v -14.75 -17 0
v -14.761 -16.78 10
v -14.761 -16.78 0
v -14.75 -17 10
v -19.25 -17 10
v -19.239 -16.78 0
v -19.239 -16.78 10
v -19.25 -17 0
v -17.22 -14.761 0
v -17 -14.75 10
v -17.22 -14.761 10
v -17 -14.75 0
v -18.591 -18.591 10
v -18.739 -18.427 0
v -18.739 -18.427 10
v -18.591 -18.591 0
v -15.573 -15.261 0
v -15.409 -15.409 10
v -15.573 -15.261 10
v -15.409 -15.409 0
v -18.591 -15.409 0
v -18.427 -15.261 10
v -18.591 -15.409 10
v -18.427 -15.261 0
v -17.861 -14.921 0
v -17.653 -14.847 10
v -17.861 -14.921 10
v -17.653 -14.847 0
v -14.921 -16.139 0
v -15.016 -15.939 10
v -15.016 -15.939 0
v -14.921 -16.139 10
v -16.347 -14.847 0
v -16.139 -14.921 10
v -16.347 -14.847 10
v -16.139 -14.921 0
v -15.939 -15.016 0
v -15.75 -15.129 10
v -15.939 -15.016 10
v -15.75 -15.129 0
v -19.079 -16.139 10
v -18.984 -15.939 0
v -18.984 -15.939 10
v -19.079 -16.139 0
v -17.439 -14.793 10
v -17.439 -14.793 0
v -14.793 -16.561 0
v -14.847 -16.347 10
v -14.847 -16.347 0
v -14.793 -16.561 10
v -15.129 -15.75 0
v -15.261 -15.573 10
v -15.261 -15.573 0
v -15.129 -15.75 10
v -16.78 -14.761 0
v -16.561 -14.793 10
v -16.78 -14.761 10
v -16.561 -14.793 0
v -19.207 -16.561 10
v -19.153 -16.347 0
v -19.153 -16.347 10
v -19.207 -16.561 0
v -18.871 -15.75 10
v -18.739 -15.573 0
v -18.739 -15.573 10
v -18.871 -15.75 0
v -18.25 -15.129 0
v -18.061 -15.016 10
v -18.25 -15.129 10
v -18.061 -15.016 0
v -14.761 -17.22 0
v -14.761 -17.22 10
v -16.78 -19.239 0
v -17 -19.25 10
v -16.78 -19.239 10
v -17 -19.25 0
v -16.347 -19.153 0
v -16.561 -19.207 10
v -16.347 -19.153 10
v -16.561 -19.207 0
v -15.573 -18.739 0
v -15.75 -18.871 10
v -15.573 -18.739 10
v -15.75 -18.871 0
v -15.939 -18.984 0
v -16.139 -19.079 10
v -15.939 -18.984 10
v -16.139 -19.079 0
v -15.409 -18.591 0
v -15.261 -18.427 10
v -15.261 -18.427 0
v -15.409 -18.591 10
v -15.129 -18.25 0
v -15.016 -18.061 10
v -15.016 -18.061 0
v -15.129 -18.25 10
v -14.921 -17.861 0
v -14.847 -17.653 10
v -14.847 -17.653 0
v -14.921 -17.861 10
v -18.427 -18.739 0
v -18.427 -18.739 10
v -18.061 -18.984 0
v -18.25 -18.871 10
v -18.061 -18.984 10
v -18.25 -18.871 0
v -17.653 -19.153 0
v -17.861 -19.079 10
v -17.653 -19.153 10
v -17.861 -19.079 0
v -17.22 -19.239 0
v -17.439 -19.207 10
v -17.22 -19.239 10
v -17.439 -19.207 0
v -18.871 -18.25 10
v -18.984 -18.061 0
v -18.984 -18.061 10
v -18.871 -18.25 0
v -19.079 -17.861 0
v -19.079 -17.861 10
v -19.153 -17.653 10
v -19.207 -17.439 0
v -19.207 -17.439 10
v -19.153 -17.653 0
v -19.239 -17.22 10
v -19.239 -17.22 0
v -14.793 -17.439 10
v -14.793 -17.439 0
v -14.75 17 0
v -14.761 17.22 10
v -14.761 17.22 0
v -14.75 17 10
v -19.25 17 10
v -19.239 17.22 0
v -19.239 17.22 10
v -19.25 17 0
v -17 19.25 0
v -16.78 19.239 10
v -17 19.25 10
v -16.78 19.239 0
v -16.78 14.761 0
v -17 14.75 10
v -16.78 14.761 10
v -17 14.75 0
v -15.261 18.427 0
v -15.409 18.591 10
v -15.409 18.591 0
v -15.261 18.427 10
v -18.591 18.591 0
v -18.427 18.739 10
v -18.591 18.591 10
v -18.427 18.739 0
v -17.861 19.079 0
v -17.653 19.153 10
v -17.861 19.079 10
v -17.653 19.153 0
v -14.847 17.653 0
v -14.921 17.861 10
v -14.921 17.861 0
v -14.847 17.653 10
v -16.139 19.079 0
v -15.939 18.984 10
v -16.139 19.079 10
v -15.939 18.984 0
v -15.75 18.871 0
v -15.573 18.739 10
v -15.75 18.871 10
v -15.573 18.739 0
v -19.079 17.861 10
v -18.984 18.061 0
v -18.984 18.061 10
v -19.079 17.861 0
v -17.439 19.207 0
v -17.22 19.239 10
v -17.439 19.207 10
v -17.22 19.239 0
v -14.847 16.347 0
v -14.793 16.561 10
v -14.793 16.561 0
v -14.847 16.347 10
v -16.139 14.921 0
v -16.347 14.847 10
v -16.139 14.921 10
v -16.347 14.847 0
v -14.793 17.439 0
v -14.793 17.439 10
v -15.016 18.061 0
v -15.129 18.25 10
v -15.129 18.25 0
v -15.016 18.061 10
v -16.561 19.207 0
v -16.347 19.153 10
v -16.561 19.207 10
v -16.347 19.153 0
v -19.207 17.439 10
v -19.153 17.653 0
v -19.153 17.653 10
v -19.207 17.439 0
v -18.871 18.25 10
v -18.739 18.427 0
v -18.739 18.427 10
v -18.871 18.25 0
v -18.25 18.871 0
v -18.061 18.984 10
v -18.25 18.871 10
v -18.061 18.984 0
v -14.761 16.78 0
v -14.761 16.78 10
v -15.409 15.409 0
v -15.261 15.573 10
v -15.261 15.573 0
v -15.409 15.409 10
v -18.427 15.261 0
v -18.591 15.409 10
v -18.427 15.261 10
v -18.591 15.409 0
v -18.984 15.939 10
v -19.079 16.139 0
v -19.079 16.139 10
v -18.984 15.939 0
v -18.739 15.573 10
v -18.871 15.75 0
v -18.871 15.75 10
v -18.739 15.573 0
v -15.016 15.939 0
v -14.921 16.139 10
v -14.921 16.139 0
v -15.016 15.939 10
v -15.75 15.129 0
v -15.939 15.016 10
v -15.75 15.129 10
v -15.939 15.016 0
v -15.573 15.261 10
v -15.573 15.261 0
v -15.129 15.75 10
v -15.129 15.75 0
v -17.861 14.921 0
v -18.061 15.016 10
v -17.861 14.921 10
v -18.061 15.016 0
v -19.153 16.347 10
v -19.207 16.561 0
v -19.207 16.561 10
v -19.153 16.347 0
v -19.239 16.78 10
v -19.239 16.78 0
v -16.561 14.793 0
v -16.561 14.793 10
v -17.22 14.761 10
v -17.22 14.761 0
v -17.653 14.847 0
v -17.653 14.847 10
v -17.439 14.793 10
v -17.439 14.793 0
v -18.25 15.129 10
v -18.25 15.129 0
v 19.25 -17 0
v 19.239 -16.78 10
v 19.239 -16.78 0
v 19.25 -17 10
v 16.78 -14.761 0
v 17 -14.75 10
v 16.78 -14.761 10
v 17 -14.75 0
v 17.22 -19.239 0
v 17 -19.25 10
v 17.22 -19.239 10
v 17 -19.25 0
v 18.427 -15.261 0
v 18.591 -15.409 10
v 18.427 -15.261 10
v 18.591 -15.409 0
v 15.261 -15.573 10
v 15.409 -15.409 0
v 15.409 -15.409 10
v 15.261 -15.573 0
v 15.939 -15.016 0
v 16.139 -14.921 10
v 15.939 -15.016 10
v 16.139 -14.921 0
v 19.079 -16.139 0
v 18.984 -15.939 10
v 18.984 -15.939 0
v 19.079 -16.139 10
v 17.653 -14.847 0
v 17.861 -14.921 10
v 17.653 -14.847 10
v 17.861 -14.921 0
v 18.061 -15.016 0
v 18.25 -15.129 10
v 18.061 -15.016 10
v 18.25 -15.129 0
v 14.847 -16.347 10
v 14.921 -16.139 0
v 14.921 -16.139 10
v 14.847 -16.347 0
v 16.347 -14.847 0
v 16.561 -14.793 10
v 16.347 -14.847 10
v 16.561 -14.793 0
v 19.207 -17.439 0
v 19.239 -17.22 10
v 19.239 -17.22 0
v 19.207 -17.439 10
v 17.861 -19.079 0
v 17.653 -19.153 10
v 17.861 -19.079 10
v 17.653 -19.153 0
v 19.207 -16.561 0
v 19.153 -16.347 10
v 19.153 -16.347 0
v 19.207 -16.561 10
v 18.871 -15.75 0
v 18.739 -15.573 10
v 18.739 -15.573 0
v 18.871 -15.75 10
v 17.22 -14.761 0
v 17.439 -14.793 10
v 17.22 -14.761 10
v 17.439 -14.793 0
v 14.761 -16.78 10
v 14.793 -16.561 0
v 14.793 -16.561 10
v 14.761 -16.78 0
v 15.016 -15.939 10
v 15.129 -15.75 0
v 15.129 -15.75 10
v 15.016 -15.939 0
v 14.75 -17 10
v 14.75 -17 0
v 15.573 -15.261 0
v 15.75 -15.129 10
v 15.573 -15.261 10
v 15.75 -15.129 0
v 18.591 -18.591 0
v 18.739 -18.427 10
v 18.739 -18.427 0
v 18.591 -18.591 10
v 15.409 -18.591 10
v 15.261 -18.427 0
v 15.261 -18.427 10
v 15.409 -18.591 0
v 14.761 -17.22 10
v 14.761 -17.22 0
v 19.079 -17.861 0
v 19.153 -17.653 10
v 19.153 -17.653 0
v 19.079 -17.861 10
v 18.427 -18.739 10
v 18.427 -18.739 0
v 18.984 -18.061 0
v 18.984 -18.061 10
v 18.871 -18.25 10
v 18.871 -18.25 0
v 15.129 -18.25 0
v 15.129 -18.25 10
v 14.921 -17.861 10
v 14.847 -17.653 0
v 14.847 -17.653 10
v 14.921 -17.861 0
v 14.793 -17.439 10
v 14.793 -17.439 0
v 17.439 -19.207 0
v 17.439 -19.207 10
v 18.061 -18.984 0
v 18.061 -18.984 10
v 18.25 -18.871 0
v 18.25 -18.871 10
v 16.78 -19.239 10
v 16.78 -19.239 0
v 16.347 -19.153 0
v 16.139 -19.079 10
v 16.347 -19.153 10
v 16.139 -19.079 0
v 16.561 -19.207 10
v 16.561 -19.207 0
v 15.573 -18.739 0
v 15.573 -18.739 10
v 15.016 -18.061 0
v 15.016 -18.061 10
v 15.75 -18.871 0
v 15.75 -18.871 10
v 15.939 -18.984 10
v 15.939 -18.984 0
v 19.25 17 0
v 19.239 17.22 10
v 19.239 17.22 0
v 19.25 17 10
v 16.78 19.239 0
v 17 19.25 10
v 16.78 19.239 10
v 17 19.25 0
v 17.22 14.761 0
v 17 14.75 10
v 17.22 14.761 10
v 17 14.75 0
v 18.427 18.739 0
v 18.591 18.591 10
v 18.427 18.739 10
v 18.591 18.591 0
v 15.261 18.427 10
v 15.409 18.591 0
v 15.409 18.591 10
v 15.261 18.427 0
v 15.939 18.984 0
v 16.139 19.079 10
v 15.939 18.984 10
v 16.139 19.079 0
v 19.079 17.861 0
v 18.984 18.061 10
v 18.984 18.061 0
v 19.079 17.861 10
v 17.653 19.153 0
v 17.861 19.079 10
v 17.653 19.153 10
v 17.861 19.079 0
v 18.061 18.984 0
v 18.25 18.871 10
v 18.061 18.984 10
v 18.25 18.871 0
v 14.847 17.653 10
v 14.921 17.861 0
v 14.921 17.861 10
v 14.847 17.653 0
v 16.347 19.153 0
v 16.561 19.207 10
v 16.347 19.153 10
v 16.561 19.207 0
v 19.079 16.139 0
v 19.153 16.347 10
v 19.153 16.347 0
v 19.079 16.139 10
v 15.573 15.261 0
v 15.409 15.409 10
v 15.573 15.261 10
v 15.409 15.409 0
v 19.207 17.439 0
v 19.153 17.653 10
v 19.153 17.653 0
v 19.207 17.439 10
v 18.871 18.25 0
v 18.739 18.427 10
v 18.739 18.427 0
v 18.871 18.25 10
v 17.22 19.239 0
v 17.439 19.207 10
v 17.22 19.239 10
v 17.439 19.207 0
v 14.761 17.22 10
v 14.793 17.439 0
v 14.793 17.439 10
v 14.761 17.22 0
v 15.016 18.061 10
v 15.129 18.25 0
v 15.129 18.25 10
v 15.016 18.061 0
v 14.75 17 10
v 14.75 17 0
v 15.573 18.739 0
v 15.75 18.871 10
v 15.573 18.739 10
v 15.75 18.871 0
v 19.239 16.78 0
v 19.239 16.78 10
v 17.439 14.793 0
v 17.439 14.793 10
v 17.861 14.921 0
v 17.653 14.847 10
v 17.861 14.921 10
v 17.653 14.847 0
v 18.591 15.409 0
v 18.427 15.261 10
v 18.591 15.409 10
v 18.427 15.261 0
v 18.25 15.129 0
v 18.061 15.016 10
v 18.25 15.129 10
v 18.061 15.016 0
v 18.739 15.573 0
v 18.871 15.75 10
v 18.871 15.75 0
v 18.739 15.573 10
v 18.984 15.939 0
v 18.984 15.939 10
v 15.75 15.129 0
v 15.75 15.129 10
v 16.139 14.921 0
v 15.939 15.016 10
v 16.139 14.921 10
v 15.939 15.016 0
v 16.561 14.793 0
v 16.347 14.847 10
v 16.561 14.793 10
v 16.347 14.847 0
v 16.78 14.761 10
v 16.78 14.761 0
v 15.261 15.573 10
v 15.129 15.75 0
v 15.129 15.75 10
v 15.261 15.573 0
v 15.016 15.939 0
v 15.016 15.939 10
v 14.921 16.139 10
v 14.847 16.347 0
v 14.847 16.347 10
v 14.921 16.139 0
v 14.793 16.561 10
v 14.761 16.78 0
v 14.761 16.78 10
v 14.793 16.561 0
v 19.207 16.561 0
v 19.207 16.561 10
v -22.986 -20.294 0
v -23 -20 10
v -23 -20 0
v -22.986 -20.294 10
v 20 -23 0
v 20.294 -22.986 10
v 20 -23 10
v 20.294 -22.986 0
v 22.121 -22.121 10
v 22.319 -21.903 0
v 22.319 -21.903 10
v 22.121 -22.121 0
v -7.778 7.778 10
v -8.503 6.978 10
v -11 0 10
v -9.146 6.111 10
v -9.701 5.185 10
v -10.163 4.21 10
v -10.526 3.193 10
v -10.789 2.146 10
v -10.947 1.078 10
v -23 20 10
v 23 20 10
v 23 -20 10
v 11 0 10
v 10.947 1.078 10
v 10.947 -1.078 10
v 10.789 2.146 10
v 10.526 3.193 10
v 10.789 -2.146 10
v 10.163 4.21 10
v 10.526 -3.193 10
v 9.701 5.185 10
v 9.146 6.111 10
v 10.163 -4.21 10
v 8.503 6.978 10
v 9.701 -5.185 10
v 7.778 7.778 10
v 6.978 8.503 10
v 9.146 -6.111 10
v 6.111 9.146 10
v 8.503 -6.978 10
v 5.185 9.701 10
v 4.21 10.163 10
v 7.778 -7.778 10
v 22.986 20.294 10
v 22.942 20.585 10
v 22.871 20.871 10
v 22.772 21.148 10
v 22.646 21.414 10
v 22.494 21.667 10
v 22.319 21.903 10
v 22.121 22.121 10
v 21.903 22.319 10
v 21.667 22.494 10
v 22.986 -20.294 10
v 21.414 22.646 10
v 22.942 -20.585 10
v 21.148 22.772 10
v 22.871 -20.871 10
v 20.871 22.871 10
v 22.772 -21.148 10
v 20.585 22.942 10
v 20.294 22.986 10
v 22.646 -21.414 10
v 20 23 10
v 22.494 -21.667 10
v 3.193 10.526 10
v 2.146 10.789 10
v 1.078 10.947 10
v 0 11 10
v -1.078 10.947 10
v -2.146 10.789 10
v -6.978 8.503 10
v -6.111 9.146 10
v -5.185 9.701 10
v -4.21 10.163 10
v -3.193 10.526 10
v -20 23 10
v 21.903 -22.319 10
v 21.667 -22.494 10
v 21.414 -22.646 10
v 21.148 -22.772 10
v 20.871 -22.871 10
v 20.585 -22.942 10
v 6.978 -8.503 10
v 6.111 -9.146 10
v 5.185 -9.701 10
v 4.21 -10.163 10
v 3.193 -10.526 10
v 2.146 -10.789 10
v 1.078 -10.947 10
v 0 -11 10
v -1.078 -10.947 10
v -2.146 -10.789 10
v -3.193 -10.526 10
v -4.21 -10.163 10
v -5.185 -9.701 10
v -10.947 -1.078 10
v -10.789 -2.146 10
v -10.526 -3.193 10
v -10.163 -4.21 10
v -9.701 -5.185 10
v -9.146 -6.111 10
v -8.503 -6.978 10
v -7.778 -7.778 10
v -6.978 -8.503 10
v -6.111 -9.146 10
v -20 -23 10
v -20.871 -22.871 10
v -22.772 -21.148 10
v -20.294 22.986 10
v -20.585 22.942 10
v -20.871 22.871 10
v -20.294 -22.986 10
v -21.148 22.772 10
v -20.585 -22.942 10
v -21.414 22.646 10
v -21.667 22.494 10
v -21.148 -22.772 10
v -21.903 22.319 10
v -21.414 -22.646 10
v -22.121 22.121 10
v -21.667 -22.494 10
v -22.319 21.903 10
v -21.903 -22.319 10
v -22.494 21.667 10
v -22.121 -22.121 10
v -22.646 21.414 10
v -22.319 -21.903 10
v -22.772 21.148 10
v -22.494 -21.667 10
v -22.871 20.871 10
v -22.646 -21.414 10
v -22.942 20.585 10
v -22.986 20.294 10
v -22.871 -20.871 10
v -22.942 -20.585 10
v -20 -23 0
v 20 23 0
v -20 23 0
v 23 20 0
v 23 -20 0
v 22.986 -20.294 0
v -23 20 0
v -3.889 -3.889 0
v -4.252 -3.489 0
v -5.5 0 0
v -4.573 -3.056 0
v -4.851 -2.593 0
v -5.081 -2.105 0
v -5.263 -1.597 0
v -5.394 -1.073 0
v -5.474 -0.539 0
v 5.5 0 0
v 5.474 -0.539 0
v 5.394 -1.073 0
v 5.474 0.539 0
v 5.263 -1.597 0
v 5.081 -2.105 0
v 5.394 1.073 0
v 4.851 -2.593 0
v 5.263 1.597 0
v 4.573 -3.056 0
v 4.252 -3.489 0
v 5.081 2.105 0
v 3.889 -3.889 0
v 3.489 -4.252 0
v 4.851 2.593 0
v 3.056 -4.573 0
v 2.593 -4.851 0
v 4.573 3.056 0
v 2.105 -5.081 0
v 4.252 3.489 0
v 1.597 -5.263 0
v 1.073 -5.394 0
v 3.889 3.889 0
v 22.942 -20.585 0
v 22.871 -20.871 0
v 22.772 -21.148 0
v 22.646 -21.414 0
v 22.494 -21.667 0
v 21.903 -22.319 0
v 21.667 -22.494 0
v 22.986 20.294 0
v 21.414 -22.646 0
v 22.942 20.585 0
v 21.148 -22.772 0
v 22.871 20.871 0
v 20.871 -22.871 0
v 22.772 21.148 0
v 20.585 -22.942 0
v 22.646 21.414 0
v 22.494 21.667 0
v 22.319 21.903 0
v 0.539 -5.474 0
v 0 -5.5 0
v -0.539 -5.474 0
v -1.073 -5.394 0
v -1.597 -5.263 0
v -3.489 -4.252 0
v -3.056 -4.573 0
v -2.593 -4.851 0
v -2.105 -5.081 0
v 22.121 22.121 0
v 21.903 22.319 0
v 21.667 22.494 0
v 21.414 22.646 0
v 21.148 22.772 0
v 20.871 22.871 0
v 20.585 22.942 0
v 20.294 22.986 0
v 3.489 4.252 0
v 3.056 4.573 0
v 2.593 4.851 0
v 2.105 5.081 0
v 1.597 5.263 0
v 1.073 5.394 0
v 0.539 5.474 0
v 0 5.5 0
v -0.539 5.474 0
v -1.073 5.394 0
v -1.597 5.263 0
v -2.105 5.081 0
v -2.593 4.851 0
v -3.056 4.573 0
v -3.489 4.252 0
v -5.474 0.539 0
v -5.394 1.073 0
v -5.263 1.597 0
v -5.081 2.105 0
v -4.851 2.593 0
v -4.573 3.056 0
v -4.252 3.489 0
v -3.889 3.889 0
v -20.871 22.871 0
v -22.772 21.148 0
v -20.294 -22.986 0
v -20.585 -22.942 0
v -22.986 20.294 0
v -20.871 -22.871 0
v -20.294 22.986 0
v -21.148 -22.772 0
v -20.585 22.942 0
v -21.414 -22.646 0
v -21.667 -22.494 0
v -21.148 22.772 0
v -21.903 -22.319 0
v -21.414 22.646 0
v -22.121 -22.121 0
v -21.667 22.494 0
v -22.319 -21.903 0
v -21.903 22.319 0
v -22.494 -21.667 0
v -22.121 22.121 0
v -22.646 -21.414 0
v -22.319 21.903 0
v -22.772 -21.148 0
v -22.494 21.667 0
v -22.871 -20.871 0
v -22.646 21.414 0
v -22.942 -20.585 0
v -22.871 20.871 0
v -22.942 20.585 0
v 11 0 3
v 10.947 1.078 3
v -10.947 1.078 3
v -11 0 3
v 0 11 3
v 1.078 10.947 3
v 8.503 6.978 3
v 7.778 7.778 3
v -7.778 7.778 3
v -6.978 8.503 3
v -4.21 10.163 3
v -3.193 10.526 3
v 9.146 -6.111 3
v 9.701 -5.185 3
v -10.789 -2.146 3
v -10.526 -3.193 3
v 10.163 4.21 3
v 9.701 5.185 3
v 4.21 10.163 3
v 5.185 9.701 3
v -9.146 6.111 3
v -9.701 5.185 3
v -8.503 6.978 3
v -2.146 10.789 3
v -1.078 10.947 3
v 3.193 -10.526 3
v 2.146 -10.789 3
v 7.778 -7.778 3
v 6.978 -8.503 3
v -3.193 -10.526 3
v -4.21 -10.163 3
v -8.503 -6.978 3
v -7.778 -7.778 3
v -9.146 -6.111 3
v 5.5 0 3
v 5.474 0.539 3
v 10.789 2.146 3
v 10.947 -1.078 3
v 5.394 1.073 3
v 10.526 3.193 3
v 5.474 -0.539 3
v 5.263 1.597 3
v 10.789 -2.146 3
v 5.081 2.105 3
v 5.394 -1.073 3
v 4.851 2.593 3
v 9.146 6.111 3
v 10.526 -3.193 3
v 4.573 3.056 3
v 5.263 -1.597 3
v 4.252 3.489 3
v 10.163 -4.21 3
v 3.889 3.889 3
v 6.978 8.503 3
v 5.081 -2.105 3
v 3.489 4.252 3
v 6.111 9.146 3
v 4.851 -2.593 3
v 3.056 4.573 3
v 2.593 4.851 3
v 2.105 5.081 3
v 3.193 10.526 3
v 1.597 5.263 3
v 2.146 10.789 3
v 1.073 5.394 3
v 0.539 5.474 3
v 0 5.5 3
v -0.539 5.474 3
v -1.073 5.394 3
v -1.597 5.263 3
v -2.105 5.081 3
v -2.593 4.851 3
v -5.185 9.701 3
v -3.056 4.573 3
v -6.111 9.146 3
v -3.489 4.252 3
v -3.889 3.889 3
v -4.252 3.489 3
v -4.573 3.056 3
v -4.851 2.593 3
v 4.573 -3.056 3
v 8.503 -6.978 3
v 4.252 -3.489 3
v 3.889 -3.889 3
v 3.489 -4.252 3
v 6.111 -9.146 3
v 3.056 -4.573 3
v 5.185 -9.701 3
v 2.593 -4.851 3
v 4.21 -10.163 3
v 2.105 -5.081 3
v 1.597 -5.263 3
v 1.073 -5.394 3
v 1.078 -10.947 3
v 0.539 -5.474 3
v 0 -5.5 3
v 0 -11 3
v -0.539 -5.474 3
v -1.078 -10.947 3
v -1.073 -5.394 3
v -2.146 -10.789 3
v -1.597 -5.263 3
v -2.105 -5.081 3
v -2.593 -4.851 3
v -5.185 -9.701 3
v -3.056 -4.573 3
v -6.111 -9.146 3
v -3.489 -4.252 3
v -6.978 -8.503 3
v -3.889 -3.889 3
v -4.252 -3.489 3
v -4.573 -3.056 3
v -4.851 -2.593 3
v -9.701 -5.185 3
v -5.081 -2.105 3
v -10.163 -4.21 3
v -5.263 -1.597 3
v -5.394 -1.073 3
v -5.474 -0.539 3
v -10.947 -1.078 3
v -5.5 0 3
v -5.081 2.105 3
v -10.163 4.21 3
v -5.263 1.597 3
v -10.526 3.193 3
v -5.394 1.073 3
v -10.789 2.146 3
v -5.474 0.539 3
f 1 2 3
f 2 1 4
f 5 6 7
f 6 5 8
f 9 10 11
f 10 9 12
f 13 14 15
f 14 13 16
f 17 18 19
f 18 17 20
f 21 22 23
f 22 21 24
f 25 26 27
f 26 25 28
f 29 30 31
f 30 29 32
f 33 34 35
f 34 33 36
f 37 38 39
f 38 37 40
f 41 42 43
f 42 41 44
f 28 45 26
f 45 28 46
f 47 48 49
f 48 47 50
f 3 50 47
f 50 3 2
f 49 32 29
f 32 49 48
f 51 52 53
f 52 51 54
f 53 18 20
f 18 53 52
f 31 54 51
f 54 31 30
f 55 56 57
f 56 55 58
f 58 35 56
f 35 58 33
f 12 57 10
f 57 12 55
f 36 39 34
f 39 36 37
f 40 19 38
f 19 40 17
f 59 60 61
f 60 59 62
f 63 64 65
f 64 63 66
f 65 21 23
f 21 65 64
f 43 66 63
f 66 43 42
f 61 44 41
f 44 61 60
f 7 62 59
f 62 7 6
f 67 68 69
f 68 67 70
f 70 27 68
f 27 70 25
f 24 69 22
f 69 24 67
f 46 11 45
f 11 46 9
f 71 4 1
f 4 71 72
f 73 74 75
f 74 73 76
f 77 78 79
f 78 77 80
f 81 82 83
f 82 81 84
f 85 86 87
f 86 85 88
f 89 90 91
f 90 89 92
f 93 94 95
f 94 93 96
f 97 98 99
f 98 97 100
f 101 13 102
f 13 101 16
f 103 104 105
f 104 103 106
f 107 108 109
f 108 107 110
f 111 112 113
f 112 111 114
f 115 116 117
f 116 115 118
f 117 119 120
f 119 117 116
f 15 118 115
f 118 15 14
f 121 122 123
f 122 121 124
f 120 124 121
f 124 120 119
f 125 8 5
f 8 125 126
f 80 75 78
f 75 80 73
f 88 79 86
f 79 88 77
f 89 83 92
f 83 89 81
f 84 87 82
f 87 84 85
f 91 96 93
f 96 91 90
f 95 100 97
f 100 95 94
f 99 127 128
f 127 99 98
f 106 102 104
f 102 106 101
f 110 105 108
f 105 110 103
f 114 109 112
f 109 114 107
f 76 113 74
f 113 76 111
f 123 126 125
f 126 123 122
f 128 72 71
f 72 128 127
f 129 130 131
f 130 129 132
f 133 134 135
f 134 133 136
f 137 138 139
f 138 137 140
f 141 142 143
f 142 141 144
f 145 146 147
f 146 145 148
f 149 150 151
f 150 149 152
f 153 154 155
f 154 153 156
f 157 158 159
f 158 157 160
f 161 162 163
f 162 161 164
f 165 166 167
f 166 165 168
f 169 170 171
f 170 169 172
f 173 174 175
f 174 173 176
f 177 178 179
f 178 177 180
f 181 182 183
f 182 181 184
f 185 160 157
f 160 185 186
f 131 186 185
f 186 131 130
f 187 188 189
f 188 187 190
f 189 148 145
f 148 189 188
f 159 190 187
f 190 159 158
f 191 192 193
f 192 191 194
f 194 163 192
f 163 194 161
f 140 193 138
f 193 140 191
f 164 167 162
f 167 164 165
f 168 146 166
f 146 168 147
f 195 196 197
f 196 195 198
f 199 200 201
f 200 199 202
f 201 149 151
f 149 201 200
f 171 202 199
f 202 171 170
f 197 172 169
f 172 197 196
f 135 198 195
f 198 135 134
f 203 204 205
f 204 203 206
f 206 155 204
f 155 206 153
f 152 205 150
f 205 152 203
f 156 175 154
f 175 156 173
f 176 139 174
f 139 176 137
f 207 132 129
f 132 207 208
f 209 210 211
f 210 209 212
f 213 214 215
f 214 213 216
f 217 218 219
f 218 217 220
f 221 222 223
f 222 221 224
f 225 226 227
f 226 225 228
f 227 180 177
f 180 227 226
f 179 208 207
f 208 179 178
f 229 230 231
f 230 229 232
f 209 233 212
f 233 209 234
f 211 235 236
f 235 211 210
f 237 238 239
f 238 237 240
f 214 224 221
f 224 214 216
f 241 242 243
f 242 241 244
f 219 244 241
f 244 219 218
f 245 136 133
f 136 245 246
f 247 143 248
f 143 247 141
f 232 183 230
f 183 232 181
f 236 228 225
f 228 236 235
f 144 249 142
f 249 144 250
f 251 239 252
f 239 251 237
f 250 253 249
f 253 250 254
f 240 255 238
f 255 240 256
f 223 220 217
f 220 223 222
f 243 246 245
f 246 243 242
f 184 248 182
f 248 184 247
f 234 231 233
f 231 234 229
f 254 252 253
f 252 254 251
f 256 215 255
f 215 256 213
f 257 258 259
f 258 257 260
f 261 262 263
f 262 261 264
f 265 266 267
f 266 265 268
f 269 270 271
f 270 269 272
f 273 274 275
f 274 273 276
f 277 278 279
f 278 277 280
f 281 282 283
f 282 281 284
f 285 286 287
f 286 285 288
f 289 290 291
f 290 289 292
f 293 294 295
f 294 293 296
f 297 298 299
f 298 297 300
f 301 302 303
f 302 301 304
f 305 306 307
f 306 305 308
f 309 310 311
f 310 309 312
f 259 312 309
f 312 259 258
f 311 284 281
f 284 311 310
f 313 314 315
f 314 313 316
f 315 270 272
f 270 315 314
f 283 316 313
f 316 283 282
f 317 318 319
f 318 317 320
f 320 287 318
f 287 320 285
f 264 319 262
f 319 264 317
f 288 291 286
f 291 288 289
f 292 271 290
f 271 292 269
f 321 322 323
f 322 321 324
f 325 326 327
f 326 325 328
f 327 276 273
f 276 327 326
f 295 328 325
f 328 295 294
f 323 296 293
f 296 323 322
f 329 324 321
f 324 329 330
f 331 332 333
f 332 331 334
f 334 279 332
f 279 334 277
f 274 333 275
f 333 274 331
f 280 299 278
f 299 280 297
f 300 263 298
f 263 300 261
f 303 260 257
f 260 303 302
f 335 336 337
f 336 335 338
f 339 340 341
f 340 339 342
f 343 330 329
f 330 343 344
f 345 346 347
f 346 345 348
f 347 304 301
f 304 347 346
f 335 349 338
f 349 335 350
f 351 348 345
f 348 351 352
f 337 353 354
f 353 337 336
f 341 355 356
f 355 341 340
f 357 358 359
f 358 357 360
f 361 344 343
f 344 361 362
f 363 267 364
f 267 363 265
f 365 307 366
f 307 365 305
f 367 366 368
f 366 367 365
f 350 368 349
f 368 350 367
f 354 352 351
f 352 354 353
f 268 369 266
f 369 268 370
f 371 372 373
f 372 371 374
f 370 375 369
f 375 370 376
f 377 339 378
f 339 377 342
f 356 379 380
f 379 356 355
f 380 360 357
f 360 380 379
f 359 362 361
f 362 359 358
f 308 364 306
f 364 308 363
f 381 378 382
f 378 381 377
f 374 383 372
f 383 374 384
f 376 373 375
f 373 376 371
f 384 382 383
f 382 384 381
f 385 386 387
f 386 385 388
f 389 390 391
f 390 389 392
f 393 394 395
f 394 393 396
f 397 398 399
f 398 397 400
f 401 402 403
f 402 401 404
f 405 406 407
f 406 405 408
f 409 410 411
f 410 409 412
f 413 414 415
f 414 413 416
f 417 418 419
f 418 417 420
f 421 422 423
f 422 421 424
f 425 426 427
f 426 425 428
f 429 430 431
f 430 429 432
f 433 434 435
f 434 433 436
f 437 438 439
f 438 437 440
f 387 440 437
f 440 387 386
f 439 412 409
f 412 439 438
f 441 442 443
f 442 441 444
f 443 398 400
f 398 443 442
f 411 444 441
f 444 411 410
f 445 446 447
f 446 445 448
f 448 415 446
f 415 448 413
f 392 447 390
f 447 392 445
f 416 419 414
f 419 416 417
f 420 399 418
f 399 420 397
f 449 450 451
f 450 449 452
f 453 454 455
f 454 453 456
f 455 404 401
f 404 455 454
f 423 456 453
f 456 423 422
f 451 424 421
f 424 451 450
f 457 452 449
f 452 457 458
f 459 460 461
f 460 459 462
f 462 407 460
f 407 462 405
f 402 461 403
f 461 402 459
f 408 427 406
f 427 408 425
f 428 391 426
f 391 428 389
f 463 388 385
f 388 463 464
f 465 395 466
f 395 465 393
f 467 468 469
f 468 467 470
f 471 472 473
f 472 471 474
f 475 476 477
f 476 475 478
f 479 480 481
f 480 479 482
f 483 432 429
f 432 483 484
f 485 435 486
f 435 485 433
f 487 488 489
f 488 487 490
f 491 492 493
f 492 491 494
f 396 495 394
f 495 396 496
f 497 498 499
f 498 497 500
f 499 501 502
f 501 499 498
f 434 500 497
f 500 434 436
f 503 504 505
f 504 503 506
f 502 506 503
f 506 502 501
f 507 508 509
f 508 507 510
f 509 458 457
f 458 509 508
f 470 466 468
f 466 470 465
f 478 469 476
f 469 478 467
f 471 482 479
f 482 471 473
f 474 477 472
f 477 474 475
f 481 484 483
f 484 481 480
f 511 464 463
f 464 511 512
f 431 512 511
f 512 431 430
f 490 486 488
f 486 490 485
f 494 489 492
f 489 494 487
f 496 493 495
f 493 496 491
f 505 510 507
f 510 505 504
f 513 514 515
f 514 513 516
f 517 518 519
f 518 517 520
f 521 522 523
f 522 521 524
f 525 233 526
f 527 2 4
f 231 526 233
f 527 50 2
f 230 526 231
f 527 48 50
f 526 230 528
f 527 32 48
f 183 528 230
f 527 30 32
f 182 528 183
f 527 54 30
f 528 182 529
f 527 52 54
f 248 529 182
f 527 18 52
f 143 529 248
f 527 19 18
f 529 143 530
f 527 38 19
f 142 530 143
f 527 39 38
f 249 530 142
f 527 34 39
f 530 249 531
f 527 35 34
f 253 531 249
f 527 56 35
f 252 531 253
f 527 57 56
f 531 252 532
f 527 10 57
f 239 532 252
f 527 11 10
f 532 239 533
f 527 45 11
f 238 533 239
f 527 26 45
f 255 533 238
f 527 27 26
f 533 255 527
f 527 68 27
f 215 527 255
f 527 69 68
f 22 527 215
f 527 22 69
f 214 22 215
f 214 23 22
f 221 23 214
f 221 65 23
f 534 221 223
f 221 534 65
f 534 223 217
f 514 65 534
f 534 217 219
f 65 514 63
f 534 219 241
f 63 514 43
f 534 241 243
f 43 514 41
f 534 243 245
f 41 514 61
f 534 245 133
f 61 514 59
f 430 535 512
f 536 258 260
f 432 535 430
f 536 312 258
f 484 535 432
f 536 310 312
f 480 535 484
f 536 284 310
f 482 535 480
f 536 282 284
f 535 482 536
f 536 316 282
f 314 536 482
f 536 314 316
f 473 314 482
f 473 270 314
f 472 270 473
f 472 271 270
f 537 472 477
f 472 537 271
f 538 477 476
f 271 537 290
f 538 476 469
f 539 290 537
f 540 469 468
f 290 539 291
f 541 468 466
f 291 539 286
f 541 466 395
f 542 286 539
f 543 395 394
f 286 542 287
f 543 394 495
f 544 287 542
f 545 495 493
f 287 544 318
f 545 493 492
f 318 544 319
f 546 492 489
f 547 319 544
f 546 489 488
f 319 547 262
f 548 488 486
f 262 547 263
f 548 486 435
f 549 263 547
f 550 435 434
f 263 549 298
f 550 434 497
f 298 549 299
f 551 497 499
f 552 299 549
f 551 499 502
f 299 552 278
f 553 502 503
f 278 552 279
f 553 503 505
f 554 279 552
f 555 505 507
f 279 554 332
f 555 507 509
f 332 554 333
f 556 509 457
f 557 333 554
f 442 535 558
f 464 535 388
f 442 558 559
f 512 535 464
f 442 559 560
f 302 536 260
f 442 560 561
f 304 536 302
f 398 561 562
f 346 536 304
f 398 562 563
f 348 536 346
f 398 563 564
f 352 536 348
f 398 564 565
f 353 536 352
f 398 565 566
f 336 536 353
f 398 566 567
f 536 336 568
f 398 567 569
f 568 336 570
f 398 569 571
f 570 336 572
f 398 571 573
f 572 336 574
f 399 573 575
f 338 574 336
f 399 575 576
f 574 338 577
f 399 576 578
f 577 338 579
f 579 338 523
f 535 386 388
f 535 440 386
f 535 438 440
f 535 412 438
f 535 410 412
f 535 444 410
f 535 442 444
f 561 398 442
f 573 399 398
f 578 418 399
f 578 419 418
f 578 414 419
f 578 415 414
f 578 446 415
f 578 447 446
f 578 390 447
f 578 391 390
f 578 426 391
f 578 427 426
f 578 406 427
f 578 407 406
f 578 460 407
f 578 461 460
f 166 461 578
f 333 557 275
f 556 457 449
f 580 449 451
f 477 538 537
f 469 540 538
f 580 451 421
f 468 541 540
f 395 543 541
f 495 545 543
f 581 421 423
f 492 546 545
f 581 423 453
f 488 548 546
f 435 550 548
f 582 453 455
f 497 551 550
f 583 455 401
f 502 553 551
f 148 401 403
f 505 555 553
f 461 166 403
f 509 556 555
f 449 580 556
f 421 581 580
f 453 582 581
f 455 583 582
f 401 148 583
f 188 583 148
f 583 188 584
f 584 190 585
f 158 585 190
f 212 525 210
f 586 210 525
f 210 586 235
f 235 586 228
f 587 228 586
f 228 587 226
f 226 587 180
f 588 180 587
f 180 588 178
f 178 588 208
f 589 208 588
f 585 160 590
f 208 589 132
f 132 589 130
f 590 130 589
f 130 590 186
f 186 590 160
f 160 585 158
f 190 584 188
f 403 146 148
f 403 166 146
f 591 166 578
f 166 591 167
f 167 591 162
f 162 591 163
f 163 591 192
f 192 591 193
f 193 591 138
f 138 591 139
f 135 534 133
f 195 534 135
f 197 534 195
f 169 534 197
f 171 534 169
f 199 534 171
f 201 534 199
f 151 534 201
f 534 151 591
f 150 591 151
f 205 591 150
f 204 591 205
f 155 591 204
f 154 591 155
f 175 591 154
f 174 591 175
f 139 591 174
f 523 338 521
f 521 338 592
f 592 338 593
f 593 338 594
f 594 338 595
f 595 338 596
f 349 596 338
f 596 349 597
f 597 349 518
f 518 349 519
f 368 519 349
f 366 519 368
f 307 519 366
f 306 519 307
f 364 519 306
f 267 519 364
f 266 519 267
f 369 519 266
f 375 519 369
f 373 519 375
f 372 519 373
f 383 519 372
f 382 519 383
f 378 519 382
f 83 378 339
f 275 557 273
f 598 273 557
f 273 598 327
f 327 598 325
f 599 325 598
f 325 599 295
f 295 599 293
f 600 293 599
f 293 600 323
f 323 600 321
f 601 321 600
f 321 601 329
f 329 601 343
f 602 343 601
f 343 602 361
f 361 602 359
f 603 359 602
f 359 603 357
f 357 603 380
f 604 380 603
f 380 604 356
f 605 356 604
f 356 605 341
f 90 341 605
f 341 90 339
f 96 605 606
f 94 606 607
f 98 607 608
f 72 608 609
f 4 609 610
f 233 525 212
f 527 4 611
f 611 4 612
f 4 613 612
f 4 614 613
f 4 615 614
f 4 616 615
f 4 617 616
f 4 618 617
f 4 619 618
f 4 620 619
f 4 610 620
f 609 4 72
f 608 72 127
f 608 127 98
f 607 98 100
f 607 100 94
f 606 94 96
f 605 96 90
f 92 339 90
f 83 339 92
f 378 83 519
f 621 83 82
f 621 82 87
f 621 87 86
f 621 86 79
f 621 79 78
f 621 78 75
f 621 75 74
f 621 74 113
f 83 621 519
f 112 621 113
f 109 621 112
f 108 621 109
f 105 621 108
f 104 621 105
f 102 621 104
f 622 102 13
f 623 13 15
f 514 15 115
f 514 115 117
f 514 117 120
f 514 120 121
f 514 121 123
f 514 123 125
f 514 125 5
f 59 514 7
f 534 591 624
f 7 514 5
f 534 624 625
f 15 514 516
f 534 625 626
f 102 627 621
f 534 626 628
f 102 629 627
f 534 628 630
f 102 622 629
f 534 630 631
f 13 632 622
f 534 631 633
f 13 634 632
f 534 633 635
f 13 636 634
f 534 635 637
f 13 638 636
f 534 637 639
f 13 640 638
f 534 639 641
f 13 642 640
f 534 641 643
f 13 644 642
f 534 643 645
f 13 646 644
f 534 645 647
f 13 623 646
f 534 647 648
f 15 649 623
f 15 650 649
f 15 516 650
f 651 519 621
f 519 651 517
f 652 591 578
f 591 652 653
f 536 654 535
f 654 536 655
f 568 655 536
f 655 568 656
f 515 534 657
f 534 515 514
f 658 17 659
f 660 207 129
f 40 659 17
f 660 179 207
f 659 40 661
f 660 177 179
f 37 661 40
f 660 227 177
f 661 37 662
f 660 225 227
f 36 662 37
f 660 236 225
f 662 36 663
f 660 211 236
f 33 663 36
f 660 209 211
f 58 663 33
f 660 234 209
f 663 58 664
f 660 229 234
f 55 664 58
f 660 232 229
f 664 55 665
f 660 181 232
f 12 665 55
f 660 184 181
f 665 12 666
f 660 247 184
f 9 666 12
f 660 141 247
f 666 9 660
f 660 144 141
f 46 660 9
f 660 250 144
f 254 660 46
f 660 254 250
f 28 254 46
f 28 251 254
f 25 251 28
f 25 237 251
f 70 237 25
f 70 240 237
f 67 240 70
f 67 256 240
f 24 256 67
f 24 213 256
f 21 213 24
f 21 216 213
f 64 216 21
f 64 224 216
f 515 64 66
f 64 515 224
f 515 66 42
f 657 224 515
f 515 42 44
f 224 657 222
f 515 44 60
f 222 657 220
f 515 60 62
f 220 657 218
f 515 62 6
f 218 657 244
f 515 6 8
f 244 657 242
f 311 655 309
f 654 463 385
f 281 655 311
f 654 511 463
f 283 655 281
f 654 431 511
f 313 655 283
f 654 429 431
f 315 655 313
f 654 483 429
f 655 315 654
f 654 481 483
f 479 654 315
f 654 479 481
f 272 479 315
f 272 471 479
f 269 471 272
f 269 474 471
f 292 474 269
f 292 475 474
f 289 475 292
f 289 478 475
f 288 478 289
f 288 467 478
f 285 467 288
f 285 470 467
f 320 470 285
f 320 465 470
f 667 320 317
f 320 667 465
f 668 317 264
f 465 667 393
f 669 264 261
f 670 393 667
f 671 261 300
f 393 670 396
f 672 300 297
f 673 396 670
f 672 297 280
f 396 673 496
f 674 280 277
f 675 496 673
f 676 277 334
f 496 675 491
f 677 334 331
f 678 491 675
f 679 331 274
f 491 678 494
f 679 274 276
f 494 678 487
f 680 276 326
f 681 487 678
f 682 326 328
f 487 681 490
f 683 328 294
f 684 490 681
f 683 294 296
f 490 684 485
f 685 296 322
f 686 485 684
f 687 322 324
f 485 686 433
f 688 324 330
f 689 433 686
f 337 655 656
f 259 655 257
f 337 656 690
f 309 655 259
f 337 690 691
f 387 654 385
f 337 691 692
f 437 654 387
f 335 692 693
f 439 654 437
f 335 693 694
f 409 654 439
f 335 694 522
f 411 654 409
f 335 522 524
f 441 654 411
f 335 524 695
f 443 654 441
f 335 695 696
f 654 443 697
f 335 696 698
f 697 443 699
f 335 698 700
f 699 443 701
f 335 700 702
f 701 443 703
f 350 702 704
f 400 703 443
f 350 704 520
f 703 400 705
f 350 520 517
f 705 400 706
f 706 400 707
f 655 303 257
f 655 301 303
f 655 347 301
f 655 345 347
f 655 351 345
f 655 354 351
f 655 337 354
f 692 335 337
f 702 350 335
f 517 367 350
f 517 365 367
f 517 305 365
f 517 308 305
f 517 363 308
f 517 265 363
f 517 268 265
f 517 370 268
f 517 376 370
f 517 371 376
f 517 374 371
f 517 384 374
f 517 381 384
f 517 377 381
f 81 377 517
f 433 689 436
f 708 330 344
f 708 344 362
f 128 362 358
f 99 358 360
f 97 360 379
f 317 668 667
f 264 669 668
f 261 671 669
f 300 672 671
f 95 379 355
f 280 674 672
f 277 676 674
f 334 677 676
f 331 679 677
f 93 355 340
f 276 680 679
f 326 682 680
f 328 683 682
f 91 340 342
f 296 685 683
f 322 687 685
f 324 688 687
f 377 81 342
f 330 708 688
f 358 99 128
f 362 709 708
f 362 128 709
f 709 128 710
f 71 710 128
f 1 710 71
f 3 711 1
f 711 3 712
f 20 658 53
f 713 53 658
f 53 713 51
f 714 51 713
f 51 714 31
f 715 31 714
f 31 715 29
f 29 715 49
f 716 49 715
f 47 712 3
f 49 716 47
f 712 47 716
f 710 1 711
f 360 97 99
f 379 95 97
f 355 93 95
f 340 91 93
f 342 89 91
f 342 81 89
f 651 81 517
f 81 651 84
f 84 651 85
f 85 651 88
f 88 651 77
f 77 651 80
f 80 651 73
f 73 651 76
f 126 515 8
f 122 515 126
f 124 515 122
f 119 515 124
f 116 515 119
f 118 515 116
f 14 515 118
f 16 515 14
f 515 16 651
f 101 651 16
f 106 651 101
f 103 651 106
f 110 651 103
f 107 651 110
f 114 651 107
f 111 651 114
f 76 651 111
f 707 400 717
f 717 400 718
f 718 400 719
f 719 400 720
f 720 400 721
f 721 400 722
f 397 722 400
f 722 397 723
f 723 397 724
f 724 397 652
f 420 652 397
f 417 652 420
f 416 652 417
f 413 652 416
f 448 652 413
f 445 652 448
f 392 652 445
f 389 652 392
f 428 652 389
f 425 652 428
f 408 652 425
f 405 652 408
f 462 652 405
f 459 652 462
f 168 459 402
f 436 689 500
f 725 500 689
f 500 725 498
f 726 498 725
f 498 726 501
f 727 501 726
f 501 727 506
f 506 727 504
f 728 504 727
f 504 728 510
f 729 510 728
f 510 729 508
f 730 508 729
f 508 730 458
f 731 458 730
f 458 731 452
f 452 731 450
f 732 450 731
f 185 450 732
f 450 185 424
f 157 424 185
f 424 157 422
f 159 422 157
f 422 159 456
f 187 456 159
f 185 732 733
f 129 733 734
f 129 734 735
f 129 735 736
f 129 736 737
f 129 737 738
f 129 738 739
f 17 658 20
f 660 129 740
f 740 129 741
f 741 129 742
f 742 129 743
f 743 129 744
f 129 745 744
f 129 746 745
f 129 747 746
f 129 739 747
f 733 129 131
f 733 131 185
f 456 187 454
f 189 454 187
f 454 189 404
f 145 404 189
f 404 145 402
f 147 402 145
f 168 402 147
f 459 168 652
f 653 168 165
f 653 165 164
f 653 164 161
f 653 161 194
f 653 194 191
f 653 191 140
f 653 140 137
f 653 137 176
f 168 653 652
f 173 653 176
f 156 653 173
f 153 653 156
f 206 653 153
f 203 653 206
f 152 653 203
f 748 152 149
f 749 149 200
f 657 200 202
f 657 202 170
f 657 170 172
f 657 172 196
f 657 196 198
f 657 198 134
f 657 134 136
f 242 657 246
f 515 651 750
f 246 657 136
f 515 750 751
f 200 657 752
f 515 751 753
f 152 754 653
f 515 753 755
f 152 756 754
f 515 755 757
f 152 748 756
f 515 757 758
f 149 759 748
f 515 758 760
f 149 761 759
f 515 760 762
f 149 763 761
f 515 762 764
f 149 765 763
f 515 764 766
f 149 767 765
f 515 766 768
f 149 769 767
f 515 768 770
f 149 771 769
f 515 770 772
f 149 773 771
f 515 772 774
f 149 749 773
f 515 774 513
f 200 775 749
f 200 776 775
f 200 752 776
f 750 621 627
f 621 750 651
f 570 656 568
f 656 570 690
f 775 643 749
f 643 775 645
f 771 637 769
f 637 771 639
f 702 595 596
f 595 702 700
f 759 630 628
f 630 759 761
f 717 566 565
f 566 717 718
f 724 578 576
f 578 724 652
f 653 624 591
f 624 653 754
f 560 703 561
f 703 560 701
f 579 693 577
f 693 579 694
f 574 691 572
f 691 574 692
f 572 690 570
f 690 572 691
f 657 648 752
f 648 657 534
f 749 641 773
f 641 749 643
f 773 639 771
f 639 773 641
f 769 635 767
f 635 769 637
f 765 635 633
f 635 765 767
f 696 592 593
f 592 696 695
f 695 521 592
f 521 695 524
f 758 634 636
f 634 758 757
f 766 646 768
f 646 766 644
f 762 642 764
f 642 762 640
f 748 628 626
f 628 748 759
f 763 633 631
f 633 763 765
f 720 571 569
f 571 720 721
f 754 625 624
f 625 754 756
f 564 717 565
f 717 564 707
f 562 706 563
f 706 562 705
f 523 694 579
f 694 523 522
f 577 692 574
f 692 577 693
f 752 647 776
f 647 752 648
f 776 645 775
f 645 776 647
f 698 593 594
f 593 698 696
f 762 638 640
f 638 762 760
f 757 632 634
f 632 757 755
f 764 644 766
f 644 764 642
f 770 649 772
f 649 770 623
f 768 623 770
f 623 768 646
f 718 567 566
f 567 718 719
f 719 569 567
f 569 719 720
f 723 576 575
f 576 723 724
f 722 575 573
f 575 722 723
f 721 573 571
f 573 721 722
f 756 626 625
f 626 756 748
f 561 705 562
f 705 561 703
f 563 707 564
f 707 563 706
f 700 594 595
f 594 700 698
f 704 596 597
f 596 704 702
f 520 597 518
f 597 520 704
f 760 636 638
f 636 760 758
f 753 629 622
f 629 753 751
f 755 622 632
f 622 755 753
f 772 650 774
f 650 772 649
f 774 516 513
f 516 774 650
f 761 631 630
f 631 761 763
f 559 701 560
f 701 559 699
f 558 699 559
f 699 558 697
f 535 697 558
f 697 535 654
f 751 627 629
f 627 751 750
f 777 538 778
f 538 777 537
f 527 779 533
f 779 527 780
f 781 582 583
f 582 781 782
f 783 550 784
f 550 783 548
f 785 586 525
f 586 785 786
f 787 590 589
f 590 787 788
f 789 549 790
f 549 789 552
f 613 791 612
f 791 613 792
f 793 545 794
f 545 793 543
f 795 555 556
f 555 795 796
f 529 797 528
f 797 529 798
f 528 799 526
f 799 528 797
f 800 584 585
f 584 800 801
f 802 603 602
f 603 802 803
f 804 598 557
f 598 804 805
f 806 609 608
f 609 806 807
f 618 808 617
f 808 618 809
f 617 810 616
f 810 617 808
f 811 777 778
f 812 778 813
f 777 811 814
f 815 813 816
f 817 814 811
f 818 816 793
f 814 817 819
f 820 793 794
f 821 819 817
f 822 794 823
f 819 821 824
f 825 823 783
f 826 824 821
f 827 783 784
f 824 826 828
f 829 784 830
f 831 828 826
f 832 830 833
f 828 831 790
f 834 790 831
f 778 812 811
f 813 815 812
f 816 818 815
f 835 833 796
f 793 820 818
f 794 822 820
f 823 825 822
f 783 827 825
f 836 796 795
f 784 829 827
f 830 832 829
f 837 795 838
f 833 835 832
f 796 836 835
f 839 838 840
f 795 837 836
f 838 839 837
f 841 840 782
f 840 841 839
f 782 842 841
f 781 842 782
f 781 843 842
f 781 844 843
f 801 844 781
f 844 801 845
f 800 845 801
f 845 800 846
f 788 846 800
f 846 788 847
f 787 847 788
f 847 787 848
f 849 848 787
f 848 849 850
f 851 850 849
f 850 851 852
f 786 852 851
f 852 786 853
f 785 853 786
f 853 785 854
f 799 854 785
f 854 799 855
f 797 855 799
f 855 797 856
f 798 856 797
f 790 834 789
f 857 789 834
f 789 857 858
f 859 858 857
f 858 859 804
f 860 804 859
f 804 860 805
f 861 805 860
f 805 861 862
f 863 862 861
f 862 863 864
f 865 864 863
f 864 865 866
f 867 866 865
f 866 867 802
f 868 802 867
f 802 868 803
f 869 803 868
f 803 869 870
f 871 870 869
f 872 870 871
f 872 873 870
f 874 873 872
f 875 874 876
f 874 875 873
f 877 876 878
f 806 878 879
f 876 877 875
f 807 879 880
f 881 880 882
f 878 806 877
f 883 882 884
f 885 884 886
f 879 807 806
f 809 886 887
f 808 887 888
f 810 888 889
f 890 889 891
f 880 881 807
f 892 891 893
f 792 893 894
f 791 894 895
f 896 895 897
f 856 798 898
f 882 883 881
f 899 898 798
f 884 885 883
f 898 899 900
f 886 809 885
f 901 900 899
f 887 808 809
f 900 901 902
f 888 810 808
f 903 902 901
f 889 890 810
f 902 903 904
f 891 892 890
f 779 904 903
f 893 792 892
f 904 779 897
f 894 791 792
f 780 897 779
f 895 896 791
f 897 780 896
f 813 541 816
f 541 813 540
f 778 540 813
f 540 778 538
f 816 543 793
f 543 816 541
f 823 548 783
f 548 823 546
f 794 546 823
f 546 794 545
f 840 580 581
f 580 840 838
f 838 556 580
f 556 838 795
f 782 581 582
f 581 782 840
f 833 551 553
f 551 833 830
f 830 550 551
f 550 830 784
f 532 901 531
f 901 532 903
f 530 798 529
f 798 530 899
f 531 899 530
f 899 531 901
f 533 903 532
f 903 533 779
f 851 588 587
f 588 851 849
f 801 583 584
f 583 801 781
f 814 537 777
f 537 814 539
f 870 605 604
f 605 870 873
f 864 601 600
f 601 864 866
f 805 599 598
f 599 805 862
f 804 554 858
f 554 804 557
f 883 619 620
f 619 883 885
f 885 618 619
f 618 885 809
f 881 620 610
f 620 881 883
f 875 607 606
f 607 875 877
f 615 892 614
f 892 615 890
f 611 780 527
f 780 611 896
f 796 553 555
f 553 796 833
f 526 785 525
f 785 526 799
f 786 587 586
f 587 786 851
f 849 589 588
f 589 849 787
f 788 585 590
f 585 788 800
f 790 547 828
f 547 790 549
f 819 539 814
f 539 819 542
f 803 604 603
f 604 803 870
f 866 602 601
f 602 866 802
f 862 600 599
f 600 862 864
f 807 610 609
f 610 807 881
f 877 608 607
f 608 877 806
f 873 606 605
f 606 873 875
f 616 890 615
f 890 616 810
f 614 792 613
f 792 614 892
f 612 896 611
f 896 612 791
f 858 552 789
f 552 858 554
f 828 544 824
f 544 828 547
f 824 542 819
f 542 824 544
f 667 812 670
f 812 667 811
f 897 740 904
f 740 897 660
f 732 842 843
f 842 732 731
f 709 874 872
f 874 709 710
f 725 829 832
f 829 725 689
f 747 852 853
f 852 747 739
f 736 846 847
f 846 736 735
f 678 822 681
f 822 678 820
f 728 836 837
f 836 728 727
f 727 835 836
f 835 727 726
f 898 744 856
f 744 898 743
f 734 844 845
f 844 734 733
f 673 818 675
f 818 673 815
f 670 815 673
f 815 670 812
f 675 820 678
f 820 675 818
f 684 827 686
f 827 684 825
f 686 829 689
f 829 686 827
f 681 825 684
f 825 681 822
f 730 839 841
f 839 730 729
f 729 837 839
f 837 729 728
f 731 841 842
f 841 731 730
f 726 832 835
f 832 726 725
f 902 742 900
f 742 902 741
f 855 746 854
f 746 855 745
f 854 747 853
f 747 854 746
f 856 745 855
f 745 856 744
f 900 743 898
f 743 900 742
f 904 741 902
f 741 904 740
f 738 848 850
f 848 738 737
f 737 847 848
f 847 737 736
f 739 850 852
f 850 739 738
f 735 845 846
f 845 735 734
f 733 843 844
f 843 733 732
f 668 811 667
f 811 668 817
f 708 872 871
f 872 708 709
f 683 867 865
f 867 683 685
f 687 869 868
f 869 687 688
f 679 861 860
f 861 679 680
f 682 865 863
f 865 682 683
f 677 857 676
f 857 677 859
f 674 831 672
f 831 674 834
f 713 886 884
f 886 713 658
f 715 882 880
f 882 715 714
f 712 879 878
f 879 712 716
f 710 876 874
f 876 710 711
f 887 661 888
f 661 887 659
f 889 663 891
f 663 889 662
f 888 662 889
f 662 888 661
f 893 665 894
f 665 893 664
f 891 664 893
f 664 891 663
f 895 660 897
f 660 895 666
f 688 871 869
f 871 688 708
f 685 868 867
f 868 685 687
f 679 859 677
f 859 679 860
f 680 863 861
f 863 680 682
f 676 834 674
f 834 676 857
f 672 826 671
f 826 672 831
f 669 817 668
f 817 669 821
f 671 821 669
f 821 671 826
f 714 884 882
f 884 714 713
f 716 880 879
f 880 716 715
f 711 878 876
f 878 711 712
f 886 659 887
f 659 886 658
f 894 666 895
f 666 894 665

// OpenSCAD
// file: common.scad
// common.scad -- shared dimensions for the seesaw-rig parts (millimetres).
// Drone-control bootcamp, CC BY 4.0. Measure your own parts and adjust.

beam_w      = 20.0;   // square aluminium tube (or pine strip), outer size
fit         = 0.4;    // printing clearance for sliding fits
bearing_od  = 22.0;   // 608 bearing
bearing_w   = 7.0;
axle_d      = 8.0;    // M8 threaded rod or 8 mm steel rod
pot_shaft_d = 6.0;    // common B10K pot (WH148): 6 mm shaft
pot_bush_d  = 7.0;    // threaded bushing (M7)
m3          = 3.4;    // M3 clearance hole
m3_nut      = 6.4;    // M3 nut across flats (+ clearance)
wall        = 3.0;

$fn = 64;

// rounded rectangle plate, centred in x/y, sitting on z = 0
module plate(x, y, h, r = 3) {
  hull()
    for (sx = [-1, 1], sy = [-1, 1])
      translate([sx * (x / 2 - r), sy * (y / 2 - r), 0]) cylinder(r = r, h = h);
}
// main file
// bearing_block.scad -- holds one 608 bearing; screw two blocks to the uprights
// (an alternative to drilling 22 mm holes in the plywood with a Forstner bit).
include <common.scad>

block_x = 46;   // width
block_y = 46;   // height on the upright
block_t = bearing_w + 3;

difference() {
  plate(block_x, block_y, block_t);
  // bearing pocket, press fit (no clearance on purpose: sand if too tight)
  translate([0, 0, 3]) cylinder(d = bearing_od, h = block_t);
  // through hole for the axle, with room for it to turn
  translate([0, 0, -1]) cylinder(d = axle_d + 3, h = block_t + 2);
  // four wood-screw holes (4 mm screws)
  for (sx = [-1, 1], sy = [-1, 1])
    translate([sx * 17, sy * 17, -1]) cylinder(d = 4.5, h = block_t + 2);
}
